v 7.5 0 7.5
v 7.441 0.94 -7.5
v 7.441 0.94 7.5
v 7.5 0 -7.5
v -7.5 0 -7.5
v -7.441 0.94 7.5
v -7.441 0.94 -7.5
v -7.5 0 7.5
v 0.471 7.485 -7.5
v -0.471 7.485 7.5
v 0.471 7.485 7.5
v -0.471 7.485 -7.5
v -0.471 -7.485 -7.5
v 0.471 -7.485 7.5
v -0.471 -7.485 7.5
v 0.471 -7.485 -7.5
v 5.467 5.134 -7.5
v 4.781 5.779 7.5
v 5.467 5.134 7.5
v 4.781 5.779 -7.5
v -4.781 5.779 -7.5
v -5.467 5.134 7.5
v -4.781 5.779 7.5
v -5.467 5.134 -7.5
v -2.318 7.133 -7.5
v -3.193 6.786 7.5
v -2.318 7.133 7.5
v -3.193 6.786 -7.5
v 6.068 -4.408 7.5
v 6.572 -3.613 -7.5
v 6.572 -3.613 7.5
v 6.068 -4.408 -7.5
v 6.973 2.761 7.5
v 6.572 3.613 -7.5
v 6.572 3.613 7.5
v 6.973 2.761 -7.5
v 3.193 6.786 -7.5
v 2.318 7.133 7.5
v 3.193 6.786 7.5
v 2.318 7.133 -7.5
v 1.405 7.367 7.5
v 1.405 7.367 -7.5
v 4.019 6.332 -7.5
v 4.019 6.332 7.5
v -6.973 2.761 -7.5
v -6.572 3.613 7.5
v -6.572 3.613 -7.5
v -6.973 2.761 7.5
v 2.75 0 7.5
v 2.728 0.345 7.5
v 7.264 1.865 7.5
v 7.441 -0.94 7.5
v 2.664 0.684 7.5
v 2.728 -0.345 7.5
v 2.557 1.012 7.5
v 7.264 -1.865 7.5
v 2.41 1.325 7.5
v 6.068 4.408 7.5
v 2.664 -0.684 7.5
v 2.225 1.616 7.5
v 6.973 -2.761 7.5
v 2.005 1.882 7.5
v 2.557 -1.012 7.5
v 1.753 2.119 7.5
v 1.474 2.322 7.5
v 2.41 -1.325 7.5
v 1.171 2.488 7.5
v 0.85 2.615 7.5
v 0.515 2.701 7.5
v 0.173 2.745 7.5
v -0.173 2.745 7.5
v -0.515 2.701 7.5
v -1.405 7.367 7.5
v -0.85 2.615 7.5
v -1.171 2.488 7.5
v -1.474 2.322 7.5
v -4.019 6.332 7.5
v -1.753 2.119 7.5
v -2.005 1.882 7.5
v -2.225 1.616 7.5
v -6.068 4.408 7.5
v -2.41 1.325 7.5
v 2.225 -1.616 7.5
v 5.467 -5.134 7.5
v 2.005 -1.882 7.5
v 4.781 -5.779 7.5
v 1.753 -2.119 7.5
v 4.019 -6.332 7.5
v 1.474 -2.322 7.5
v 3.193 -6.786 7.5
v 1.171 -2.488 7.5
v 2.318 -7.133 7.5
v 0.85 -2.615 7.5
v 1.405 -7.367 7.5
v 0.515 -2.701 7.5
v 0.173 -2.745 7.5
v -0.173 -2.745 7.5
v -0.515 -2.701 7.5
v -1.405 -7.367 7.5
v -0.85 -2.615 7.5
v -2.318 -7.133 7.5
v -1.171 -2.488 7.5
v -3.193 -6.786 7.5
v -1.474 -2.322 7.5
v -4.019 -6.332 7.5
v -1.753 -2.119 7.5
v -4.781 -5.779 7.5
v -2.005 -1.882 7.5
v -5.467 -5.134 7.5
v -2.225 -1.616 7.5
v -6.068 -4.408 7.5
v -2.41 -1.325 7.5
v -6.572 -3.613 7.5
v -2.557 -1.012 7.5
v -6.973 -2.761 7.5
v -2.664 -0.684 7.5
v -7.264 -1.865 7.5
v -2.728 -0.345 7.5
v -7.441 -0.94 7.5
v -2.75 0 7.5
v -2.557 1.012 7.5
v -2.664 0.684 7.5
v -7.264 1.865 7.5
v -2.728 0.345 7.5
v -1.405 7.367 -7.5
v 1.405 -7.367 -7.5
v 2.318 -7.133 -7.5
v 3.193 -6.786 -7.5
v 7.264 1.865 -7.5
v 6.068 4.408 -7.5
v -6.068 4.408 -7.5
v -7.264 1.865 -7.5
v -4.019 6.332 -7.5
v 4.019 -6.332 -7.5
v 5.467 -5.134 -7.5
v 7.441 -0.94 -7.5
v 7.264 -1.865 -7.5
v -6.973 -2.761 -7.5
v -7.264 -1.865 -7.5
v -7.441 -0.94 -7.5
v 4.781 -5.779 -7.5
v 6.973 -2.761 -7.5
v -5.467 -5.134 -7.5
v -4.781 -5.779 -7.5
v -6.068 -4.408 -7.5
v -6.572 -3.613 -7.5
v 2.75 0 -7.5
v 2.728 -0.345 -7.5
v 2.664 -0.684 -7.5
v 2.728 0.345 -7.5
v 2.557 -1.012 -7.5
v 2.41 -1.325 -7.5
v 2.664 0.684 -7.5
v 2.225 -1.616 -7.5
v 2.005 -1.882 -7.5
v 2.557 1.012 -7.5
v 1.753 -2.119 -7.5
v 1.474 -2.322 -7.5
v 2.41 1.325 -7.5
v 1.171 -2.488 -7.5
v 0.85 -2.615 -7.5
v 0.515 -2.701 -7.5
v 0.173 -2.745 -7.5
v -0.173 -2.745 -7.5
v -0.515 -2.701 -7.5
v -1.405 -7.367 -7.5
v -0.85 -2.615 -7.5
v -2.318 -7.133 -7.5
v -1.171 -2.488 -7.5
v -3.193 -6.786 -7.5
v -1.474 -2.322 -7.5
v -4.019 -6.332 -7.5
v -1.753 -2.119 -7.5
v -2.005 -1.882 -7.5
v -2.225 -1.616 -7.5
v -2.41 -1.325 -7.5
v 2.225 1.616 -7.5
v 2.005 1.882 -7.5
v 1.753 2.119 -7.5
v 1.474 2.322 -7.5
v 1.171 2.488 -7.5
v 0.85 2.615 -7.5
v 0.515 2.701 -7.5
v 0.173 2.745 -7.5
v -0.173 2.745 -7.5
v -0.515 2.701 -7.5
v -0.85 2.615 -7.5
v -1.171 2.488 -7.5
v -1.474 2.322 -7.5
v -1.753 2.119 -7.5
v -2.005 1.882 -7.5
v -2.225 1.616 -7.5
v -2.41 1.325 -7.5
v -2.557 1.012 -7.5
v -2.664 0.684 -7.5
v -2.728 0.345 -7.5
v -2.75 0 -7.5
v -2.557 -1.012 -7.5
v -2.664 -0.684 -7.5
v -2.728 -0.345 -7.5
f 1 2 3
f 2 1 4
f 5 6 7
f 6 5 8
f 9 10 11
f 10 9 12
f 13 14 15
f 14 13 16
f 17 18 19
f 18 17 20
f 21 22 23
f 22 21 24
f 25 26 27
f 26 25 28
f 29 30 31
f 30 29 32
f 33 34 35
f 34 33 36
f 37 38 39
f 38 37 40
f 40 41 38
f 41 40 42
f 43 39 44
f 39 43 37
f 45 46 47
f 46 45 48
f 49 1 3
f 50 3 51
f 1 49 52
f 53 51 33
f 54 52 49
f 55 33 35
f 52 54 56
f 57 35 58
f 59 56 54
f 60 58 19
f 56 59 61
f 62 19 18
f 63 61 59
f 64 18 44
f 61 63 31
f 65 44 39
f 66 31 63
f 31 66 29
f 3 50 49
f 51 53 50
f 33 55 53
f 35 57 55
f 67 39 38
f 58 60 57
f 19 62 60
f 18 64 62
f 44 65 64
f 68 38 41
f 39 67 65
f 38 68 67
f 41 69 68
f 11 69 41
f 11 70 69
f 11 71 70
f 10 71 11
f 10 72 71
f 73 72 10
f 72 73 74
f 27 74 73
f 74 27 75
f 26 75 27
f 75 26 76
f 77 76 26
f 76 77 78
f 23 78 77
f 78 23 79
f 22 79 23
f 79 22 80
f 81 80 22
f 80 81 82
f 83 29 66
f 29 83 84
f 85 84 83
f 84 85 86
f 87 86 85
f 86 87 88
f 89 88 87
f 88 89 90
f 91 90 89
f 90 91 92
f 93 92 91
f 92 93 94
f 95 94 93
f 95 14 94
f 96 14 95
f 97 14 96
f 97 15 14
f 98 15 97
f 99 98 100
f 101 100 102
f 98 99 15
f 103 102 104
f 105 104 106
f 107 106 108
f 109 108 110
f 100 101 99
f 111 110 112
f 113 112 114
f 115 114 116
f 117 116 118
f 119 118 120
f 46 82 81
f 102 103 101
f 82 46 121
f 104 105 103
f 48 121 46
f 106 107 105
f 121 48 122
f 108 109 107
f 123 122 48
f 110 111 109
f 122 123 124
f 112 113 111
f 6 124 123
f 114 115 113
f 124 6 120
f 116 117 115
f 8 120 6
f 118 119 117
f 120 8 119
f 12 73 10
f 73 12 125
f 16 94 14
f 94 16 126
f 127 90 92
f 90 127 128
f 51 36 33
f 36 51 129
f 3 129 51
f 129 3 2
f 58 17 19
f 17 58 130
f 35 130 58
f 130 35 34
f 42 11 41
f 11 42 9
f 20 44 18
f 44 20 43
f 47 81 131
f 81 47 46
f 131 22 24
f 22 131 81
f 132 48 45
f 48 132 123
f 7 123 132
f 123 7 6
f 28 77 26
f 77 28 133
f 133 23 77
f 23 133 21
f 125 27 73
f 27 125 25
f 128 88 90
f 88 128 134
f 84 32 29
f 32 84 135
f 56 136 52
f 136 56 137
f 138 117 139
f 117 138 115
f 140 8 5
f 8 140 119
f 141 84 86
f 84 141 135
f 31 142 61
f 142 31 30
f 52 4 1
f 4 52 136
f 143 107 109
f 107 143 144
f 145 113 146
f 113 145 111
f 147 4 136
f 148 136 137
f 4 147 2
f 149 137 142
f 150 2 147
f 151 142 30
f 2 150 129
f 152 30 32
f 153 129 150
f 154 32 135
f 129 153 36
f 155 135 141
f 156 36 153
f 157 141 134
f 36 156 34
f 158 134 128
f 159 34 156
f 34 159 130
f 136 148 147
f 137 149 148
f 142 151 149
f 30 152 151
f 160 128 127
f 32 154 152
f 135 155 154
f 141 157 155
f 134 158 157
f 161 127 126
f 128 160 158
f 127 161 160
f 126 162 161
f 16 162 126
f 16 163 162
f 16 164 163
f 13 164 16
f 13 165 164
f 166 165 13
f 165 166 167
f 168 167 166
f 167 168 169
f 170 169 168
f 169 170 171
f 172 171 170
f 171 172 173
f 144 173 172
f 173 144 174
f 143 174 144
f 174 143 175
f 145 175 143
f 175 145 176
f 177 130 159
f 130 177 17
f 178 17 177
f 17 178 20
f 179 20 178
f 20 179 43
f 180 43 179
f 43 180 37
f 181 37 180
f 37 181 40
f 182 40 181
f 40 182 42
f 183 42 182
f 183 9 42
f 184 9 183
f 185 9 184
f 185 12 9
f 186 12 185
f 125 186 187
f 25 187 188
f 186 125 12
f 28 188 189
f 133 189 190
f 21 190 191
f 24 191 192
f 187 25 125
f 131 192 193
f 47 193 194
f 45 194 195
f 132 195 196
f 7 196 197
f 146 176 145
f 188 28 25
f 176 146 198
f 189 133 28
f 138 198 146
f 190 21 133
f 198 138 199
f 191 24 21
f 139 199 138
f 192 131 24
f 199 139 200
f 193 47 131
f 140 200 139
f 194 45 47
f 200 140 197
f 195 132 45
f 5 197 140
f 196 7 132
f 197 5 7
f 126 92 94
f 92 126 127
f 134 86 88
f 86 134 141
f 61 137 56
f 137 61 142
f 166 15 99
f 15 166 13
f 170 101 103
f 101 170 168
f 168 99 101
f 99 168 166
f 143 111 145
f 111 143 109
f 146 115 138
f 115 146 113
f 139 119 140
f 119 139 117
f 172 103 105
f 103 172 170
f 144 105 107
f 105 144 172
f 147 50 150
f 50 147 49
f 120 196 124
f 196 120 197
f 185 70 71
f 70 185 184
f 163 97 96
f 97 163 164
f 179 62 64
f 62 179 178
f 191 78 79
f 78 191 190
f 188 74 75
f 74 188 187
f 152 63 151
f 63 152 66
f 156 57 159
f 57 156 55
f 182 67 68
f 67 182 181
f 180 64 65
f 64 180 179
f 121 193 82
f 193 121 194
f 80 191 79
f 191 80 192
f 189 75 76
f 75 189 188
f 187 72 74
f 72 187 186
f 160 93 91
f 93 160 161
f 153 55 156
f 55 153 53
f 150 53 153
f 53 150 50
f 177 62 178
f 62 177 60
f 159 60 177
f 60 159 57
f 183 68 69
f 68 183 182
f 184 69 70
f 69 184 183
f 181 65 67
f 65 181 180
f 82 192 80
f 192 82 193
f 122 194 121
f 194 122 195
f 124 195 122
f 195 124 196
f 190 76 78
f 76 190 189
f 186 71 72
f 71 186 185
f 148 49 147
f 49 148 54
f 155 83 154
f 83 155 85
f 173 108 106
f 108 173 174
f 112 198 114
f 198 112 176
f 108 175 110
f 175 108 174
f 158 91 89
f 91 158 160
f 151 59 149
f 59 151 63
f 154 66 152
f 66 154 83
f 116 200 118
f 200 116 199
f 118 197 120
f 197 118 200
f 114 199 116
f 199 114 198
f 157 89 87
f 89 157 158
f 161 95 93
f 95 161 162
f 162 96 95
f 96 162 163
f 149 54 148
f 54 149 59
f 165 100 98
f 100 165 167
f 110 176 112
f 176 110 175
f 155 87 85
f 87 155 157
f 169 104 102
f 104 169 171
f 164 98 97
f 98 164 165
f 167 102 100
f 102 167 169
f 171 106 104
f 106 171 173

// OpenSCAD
$fn = 50;


difference() {
	union() {
		translate(v = [0, 0, -7.5000000000]) {
			cylinder(h = 15, r = 7.5000000000);
		}
	}
	union() {
		translate(v = [0, 0, -100.0000000000]) {
			cylinder(h = 200, r = 2.7500000000);
		}
	}
}
